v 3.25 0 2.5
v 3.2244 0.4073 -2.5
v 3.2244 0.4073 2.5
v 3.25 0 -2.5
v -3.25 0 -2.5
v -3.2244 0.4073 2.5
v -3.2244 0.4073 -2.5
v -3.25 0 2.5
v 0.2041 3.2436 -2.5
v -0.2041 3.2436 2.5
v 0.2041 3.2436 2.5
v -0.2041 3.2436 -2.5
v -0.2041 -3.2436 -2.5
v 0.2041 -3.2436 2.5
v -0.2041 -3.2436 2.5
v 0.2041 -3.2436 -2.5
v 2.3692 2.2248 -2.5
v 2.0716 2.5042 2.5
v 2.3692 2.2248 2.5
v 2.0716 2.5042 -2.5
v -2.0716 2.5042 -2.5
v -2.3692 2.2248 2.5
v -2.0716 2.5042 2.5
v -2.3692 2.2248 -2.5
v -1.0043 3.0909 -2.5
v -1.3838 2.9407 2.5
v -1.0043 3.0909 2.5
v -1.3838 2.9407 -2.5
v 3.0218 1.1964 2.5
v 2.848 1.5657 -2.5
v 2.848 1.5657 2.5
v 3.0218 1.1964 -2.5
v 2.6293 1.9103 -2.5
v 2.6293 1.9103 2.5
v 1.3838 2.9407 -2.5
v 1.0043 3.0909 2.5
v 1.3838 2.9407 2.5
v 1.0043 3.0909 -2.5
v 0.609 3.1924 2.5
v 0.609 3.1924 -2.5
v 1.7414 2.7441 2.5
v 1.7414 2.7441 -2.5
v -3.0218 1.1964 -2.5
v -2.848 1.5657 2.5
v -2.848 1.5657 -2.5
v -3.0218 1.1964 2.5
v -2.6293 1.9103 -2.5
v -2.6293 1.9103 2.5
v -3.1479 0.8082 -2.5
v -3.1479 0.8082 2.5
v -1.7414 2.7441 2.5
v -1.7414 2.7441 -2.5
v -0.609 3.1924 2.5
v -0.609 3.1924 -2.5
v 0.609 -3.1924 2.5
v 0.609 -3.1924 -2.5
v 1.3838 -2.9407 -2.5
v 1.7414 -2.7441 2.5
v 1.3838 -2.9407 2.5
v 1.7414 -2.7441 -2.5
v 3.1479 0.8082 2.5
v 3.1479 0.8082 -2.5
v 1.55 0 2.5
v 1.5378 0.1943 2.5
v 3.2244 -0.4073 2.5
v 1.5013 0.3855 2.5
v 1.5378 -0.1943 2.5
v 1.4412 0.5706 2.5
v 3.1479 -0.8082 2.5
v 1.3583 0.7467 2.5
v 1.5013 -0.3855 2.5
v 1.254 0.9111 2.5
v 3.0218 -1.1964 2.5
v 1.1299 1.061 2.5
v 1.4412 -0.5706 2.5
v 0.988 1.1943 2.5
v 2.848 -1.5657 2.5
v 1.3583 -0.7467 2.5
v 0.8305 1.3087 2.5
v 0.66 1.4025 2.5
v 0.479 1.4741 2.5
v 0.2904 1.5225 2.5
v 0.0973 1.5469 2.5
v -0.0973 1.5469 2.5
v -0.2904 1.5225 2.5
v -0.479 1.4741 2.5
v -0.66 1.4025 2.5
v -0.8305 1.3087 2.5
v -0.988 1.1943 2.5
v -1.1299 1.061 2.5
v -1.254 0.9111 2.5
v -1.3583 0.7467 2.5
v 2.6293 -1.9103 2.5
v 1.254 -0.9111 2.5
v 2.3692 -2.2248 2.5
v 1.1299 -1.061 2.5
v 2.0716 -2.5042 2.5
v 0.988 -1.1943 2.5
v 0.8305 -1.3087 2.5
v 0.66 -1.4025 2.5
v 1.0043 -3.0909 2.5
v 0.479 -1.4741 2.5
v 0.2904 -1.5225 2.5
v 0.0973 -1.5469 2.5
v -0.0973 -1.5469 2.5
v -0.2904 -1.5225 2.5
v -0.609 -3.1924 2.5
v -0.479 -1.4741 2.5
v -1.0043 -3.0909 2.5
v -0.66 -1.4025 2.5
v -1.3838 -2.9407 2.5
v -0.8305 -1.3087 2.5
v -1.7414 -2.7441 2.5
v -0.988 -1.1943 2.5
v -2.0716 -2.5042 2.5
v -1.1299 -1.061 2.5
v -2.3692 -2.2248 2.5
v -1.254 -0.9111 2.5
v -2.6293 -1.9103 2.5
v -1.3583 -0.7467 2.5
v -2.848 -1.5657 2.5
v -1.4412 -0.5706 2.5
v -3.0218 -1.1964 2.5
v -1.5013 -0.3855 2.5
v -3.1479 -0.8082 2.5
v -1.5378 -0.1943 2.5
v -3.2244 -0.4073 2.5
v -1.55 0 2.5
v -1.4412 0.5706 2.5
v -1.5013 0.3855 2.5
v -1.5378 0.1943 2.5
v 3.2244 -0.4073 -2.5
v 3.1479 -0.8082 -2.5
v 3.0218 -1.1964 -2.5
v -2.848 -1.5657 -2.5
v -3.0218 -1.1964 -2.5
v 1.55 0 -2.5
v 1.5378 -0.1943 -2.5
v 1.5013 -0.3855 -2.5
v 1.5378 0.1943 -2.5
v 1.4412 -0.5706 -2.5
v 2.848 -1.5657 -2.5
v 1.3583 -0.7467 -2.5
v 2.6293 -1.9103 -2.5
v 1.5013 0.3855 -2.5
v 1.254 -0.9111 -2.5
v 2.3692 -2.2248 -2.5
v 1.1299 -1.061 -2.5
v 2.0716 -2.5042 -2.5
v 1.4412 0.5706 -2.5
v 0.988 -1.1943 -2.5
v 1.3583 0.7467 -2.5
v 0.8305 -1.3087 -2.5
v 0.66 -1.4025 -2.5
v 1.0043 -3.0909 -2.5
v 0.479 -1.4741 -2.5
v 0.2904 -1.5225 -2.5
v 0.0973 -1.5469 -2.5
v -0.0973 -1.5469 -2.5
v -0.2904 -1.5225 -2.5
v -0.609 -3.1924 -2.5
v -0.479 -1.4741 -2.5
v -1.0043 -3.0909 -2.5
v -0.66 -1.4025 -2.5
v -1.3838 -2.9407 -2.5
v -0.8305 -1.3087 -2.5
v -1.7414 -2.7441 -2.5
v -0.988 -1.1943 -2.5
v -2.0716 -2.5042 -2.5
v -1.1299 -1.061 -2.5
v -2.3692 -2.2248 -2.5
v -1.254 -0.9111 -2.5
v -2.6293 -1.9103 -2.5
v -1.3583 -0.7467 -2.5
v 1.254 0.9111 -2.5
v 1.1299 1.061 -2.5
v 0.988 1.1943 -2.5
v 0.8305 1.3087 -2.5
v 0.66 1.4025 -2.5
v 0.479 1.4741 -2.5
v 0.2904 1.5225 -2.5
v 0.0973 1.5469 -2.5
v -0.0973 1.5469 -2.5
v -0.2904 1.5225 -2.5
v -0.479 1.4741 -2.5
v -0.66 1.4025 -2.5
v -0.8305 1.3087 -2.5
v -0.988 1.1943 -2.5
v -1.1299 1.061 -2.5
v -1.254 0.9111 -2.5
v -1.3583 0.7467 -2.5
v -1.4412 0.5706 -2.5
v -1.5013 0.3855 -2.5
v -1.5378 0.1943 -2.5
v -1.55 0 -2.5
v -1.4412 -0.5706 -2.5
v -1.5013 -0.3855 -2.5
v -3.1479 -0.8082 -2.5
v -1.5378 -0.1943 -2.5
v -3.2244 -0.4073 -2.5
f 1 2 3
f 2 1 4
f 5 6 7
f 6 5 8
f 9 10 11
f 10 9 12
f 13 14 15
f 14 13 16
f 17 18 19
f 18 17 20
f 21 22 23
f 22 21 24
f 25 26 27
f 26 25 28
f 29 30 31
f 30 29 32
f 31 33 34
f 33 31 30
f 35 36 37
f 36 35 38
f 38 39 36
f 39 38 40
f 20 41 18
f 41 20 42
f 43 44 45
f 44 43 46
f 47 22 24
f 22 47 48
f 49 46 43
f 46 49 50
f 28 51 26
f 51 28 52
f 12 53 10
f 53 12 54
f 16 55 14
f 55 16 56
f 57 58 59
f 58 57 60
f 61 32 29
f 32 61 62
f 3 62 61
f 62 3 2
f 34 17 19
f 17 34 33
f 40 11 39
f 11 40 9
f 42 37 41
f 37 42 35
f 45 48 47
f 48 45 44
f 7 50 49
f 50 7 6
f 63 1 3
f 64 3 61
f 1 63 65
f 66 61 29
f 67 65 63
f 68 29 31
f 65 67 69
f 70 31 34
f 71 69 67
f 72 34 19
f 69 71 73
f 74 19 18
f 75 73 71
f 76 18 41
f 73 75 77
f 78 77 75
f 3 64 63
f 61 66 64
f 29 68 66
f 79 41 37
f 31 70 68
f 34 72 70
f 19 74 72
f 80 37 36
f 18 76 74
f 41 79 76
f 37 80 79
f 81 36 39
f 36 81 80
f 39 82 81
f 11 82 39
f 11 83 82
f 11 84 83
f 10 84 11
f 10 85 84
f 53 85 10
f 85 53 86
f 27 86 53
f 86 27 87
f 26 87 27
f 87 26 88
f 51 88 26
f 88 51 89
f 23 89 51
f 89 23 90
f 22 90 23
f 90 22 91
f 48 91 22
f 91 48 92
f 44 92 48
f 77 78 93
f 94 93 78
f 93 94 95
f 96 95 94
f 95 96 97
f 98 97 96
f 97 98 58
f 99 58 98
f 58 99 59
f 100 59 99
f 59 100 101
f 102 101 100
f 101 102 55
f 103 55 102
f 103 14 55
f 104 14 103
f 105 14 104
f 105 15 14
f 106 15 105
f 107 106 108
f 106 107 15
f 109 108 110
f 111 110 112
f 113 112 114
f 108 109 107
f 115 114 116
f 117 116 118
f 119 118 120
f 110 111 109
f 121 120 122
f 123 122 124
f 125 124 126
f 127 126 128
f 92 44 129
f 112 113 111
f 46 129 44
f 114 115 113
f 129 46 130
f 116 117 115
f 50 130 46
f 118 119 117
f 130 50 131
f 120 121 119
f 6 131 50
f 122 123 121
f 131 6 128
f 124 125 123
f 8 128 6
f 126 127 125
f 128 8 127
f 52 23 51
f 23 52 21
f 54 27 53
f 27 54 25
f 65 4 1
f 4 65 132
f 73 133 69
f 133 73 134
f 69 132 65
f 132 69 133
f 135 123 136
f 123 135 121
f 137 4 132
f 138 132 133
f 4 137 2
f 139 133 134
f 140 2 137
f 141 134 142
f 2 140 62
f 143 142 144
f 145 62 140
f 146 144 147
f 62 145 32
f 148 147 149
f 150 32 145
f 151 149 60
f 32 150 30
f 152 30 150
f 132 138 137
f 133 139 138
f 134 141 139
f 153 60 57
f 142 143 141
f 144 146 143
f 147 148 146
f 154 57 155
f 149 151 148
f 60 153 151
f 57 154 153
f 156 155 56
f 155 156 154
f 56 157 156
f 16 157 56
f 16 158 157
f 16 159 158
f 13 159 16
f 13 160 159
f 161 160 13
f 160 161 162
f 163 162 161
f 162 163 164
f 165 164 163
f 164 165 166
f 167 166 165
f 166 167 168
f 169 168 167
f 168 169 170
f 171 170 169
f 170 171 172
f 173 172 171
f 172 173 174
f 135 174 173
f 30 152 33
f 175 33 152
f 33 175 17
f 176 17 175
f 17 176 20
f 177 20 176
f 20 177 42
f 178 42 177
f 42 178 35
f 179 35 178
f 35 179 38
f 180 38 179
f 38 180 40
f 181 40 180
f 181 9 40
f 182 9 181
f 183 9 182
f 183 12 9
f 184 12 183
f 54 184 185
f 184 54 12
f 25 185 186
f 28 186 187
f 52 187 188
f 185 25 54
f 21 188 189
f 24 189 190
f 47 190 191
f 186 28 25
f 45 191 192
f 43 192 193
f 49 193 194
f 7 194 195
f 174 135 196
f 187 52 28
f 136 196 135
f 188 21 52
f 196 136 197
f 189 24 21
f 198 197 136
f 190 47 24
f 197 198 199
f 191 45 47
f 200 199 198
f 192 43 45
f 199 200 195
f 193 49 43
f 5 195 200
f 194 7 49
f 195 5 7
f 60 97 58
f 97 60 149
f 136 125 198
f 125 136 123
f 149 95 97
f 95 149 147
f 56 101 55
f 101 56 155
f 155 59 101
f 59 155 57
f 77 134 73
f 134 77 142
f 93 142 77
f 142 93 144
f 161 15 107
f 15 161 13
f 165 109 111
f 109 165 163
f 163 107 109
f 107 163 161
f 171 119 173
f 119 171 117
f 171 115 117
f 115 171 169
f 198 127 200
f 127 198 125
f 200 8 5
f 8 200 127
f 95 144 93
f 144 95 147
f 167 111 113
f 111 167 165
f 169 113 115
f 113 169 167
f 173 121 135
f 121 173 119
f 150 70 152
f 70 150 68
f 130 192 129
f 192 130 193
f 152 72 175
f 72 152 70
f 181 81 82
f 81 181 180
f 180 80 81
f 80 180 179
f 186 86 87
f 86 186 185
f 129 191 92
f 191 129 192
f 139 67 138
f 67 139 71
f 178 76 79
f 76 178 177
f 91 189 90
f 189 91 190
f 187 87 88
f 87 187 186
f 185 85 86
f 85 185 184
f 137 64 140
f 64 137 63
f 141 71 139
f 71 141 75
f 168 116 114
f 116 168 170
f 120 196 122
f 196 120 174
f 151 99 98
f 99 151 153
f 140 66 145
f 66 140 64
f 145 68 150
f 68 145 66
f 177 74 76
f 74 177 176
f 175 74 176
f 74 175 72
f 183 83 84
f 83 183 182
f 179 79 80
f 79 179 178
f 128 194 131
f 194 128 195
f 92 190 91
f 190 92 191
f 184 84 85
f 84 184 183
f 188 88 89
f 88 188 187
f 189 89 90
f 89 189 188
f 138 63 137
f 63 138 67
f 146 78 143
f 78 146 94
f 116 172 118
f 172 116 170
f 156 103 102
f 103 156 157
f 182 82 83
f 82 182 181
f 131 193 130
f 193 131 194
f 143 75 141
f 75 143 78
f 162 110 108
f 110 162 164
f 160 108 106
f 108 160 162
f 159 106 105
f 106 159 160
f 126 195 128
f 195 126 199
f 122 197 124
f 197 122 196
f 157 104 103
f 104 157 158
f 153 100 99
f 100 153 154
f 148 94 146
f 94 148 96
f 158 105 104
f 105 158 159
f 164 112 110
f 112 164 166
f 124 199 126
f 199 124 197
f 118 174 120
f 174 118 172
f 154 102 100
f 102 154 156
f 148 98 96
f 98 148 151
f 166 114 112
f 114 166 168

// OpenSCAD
$fn = 50;


difference() {
	union() {
		translate(v = [0, 0, -2.5000000000]) {
			cylinder(h = 5, r = 3.2500000000);
		}
	}
	union() {
		translate(v = [0, 0, -100.0000000000]) {
			cylinder(h = 200, r = 1.5500000000);
		}
	}
}
